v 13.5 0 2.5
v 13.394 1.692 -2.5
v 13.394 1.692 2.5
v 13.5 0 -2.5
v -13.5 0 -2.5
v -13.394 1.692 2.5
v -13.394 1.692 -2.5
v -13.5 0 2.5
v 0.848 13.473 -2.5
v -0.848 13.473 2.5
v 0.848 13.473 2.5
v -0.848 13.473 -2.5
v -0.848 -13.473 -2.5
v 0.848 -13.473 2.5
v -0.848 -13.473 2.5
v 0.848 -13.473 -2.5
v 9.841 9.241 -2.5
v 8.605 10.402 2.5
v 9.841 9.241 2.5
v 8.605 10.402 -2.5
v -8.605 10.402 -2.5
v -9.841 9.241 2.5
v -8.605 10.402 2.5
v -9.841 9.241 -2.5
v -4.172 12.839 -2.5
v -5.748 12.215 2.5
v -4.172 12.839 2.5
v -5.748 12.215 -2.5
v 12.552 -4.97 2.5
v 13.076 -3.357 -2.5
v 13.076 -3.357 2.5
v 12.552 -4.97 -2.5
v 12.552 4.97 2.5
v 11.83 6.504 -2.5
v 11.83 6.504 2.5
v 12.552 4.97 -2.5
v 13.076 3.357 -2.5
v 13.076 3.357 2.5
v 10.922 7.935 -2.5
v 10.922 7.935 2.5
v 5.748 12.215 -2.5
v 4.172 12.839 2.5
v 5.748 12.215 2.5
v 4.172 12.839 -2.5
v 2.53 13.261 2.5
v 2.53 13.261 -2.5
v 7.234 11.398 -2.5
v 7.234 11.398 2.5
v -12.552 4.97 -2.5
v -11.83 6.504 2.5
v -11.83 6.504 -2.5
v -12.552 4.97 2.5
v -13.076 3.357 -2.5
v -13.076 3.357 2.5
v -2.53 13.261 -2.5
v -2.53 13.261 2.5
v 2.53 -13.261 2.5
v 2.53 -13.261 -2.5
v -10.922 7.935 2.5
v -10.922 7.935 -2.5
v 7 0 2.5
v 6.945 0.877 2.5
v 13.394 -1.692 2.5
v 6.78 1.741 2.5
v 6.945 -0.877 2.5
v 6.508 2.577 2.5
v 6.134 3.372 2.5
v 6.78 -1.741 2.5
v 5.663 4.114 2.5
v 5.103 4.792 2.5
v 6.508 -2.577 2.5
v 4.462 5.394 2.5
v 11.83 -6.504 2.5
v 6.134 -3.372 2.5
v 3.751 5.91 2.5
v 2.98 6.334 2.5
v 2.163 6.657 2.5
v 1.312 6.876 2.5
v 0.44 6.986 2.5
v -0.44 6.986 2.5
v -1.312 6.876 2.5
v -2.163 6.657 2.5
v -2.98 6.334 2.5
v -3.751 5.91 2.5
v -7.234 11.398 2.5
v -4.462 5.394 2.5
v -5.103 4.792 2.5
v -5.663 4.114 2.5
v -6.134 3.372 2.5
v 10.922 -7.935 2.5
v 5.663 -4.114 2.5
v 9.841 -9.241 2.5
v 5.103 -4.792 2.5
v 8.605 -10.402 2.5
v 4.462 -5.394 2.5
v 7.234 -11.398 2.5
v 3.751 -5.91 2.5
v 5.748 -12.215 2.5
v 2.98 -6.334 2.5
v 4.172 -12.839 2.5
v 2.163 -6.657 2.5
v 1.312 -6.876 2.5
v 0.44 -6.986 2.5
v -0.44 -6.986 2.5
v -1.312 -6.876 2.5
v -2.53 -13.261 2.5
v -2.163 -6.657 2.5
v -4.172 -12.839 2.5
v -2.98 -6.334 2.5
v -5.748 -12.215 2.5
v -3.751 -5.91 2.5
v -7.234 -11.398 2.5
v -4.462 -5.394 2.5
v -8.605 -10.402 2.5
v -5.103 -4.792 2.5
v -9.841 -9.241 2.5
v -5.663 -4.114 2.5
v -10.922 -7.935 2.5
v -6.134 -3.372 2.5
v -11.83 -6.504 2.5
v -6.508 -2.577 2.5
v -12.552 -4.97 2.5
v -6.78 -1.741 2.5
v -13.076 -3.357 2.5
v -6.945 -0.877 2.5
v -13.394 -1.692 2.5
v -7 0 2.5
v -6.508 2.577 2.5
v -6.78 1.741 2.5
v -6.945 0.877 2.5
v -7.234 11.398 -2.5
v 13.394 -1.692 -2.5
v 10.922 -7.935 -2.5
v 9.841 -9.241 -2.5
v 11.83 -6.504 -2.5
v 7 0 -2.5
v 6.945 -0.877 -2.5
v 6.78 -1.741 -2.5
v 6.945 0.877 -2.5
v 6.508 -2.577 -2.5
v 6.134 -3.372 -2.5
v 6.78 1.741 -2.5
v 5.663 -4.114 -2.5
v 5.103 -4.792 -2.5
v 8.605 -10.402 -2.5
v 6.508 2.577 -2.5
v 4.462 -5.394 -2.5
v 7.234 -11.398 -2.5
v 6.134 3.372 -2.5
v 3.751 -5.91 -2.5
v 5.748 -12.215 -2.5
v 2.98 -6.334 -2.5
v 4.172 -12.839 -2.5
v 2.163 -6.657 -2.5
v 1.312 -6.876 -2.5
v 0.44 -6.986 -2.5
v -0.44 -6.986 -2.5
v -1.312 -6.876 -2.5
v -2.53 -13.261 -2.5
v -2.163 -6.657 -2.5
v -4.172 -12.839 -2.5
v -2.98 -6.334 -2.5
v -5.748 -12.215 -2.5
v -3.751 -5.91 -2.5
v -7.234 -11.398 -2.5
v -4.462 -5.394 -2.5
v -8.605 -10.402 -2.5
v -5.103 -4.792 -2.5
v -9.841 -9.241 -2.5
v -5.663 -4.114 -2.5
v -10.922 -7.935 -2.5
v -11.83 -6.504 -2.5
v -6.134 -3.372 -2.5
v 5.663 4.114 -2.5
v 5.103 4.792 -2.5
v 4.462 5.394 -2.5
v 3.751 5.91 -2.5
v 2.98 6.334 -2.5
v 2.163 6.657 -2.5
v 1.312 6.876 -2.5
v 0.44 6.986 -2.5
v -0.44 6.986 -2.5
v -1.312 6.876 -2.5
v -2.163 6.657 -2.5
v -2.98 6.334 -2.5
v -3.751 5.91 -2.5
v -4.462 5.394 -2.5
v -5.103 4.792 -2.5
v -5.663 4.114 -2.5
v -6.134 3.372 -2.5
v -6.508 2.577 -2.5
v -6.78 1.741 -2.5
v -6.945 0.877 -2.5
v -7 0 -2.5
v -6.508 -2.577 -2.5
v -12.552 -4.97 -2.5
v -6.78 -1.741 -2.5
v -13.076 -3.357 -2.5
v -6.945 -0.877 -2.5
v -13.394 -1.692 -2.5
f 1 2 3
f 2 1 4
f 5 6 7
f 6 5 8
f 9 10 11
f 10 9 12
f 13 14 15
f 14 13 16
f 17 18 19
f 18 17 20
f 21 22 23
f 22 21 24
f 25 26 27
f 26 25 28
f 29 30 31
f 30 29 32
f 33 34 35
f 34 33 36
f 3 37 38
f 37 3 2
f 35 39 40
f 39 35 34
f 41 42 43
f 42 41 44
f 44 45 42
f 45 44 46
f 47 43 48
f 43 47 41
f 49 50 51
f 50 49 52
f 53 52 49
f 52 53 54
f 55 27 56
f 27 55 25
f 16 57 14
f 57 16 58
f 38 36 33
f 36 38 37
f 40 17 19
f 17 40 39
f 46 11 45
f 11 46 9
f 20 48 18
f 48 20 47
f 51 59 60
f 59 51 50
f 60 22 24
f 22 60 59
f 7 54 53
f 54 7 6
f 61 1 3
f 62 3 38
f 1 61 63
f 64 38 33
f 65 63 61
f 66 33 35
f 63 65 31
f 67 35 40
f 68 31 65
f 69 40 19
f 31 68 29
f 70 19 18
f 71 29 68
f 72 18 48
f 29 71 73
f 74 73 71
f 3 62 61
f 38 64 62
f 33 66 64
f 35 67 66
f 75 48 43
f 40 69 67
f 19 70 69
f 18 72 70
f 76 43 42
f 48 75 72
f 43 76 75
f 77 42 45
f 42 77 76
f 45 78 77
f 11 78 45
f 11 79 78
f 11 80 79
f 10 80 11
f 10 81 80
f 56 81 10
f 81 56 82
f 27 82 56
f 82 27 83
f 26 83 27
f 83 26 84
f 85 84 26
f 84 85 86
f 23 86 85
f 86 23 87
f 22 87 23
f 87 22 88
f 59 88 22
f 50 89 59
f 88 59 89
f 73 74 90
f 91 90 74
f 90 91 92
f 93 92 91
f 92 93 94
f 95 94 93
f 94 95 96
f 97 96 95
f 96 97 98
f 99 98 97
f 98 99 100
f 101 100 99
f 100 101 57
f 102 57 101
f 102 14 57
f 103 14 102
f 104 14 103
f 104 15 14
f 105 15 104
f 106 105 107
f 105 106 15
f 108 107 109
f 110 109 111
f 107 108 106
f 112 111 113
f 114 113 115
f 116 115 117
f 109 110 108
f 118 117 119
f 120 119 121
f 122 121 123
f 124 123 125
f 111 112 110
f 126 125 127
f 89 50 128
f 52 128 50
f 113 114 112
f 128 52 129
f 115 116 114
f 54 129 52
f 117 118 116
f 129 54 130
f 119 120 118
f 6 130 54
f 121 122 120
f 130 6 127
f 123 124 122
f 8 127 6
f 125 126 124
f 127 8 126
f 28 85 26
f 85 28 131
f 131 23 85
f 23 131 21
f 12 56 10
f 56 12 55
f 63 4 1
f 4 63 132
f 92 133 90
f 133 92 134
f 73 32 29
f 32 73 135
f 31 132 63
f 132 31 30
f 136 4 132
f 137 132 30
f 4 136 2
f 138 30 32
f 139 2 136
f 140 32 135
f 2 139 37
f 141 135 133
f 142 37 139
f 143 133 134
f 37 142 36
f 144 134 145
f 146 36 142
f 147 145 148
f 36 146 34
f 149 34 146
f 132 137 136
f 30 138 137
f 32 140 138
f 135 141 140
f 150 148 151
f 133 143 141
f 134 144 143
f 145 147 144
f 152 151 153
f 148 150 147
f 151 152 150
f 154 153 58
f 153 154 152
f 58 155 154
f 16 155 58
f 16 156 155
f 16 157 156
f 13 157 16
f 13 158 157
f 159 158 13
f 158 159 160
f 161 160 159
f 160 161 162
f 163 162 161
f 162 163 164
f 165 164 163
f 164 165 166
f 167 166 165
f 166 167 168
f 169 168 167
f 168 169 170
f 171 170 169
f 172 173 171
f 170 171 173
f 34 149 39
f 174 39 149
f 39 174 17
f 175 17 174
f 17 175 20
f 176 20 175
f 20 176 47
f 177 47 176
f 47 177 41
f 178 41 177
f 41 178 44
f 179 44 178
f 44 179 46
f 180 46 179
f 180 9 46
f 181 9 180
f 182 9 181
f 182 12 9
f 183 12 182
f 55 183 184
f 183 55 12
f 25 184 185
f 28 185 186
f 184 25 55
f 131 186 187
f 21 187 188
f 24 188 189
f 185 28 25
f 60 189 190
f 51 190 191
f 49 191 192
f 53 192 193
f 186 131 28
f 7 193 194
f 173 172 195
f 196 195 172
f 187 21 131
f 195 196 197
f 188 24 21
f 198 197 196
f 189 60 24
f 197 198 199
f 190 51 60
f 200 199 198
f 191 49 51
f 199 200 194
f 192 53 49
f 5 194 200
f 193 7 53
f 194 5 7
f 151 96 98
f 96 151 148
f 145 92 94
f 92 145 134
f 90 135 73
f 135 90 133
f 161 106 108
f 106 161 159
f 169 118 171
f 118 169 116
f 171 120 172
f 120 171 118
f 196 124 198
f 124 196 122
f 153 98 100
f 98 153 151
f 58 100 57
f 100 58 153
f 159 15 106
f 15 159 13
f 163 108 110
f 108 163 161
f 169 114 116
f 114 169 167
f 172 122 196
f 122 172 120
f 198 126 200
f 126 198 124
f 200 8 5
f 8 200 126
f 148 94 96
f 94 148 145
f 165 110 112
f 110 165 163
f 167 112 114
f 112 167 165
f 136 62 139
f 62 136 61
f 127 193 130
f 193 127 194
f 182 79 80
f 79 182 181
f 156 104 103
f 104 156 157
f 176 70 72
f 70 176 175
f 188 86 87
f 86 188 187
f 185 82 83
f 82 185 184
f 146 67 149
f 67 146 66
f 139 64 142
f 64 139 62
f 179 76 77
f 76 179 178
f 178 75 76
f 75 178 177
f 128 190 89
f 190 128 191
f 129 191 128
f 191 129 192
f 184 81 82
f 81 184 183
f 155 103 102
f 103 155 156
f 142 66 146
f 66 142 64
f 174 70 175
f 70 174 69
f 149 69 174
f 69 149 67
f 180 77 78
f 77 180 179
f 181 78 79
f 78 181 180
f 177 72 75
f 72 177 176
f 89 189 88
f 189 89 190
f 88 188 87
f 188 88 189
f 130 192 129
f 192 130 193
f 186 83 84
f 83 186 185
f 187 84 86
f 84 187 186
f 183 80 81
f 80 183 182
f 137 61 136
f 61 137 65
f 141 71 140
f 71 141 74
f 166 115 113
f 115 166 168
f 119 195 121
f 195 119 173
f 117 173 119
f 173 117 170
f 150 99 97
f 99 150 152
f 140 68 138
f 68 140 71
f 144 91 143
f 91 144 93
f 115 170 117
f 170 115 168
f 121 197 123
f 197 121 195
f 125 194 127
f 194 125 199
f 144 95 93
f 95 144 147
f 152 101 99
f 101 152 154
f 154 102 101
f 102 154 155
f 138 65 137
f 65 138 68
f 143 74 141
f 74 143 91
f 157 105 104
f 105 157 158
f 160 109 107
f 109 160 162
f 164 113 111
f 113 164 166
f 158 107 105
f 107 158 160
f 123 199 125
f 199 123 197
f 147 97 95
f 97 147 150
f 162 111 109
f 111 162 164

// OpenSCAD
$fn = 50;


difference() {
	union() {
		translate(v = [0, 0, -2.5000000000]) {
			cylinder(h = 5, r = 13.5000000000);
		}
	}
	union() {
		translate(v = [0, 0, -100.0000000000]) {
			cylinder(h = 200, r = 7);
		}
	}
}
